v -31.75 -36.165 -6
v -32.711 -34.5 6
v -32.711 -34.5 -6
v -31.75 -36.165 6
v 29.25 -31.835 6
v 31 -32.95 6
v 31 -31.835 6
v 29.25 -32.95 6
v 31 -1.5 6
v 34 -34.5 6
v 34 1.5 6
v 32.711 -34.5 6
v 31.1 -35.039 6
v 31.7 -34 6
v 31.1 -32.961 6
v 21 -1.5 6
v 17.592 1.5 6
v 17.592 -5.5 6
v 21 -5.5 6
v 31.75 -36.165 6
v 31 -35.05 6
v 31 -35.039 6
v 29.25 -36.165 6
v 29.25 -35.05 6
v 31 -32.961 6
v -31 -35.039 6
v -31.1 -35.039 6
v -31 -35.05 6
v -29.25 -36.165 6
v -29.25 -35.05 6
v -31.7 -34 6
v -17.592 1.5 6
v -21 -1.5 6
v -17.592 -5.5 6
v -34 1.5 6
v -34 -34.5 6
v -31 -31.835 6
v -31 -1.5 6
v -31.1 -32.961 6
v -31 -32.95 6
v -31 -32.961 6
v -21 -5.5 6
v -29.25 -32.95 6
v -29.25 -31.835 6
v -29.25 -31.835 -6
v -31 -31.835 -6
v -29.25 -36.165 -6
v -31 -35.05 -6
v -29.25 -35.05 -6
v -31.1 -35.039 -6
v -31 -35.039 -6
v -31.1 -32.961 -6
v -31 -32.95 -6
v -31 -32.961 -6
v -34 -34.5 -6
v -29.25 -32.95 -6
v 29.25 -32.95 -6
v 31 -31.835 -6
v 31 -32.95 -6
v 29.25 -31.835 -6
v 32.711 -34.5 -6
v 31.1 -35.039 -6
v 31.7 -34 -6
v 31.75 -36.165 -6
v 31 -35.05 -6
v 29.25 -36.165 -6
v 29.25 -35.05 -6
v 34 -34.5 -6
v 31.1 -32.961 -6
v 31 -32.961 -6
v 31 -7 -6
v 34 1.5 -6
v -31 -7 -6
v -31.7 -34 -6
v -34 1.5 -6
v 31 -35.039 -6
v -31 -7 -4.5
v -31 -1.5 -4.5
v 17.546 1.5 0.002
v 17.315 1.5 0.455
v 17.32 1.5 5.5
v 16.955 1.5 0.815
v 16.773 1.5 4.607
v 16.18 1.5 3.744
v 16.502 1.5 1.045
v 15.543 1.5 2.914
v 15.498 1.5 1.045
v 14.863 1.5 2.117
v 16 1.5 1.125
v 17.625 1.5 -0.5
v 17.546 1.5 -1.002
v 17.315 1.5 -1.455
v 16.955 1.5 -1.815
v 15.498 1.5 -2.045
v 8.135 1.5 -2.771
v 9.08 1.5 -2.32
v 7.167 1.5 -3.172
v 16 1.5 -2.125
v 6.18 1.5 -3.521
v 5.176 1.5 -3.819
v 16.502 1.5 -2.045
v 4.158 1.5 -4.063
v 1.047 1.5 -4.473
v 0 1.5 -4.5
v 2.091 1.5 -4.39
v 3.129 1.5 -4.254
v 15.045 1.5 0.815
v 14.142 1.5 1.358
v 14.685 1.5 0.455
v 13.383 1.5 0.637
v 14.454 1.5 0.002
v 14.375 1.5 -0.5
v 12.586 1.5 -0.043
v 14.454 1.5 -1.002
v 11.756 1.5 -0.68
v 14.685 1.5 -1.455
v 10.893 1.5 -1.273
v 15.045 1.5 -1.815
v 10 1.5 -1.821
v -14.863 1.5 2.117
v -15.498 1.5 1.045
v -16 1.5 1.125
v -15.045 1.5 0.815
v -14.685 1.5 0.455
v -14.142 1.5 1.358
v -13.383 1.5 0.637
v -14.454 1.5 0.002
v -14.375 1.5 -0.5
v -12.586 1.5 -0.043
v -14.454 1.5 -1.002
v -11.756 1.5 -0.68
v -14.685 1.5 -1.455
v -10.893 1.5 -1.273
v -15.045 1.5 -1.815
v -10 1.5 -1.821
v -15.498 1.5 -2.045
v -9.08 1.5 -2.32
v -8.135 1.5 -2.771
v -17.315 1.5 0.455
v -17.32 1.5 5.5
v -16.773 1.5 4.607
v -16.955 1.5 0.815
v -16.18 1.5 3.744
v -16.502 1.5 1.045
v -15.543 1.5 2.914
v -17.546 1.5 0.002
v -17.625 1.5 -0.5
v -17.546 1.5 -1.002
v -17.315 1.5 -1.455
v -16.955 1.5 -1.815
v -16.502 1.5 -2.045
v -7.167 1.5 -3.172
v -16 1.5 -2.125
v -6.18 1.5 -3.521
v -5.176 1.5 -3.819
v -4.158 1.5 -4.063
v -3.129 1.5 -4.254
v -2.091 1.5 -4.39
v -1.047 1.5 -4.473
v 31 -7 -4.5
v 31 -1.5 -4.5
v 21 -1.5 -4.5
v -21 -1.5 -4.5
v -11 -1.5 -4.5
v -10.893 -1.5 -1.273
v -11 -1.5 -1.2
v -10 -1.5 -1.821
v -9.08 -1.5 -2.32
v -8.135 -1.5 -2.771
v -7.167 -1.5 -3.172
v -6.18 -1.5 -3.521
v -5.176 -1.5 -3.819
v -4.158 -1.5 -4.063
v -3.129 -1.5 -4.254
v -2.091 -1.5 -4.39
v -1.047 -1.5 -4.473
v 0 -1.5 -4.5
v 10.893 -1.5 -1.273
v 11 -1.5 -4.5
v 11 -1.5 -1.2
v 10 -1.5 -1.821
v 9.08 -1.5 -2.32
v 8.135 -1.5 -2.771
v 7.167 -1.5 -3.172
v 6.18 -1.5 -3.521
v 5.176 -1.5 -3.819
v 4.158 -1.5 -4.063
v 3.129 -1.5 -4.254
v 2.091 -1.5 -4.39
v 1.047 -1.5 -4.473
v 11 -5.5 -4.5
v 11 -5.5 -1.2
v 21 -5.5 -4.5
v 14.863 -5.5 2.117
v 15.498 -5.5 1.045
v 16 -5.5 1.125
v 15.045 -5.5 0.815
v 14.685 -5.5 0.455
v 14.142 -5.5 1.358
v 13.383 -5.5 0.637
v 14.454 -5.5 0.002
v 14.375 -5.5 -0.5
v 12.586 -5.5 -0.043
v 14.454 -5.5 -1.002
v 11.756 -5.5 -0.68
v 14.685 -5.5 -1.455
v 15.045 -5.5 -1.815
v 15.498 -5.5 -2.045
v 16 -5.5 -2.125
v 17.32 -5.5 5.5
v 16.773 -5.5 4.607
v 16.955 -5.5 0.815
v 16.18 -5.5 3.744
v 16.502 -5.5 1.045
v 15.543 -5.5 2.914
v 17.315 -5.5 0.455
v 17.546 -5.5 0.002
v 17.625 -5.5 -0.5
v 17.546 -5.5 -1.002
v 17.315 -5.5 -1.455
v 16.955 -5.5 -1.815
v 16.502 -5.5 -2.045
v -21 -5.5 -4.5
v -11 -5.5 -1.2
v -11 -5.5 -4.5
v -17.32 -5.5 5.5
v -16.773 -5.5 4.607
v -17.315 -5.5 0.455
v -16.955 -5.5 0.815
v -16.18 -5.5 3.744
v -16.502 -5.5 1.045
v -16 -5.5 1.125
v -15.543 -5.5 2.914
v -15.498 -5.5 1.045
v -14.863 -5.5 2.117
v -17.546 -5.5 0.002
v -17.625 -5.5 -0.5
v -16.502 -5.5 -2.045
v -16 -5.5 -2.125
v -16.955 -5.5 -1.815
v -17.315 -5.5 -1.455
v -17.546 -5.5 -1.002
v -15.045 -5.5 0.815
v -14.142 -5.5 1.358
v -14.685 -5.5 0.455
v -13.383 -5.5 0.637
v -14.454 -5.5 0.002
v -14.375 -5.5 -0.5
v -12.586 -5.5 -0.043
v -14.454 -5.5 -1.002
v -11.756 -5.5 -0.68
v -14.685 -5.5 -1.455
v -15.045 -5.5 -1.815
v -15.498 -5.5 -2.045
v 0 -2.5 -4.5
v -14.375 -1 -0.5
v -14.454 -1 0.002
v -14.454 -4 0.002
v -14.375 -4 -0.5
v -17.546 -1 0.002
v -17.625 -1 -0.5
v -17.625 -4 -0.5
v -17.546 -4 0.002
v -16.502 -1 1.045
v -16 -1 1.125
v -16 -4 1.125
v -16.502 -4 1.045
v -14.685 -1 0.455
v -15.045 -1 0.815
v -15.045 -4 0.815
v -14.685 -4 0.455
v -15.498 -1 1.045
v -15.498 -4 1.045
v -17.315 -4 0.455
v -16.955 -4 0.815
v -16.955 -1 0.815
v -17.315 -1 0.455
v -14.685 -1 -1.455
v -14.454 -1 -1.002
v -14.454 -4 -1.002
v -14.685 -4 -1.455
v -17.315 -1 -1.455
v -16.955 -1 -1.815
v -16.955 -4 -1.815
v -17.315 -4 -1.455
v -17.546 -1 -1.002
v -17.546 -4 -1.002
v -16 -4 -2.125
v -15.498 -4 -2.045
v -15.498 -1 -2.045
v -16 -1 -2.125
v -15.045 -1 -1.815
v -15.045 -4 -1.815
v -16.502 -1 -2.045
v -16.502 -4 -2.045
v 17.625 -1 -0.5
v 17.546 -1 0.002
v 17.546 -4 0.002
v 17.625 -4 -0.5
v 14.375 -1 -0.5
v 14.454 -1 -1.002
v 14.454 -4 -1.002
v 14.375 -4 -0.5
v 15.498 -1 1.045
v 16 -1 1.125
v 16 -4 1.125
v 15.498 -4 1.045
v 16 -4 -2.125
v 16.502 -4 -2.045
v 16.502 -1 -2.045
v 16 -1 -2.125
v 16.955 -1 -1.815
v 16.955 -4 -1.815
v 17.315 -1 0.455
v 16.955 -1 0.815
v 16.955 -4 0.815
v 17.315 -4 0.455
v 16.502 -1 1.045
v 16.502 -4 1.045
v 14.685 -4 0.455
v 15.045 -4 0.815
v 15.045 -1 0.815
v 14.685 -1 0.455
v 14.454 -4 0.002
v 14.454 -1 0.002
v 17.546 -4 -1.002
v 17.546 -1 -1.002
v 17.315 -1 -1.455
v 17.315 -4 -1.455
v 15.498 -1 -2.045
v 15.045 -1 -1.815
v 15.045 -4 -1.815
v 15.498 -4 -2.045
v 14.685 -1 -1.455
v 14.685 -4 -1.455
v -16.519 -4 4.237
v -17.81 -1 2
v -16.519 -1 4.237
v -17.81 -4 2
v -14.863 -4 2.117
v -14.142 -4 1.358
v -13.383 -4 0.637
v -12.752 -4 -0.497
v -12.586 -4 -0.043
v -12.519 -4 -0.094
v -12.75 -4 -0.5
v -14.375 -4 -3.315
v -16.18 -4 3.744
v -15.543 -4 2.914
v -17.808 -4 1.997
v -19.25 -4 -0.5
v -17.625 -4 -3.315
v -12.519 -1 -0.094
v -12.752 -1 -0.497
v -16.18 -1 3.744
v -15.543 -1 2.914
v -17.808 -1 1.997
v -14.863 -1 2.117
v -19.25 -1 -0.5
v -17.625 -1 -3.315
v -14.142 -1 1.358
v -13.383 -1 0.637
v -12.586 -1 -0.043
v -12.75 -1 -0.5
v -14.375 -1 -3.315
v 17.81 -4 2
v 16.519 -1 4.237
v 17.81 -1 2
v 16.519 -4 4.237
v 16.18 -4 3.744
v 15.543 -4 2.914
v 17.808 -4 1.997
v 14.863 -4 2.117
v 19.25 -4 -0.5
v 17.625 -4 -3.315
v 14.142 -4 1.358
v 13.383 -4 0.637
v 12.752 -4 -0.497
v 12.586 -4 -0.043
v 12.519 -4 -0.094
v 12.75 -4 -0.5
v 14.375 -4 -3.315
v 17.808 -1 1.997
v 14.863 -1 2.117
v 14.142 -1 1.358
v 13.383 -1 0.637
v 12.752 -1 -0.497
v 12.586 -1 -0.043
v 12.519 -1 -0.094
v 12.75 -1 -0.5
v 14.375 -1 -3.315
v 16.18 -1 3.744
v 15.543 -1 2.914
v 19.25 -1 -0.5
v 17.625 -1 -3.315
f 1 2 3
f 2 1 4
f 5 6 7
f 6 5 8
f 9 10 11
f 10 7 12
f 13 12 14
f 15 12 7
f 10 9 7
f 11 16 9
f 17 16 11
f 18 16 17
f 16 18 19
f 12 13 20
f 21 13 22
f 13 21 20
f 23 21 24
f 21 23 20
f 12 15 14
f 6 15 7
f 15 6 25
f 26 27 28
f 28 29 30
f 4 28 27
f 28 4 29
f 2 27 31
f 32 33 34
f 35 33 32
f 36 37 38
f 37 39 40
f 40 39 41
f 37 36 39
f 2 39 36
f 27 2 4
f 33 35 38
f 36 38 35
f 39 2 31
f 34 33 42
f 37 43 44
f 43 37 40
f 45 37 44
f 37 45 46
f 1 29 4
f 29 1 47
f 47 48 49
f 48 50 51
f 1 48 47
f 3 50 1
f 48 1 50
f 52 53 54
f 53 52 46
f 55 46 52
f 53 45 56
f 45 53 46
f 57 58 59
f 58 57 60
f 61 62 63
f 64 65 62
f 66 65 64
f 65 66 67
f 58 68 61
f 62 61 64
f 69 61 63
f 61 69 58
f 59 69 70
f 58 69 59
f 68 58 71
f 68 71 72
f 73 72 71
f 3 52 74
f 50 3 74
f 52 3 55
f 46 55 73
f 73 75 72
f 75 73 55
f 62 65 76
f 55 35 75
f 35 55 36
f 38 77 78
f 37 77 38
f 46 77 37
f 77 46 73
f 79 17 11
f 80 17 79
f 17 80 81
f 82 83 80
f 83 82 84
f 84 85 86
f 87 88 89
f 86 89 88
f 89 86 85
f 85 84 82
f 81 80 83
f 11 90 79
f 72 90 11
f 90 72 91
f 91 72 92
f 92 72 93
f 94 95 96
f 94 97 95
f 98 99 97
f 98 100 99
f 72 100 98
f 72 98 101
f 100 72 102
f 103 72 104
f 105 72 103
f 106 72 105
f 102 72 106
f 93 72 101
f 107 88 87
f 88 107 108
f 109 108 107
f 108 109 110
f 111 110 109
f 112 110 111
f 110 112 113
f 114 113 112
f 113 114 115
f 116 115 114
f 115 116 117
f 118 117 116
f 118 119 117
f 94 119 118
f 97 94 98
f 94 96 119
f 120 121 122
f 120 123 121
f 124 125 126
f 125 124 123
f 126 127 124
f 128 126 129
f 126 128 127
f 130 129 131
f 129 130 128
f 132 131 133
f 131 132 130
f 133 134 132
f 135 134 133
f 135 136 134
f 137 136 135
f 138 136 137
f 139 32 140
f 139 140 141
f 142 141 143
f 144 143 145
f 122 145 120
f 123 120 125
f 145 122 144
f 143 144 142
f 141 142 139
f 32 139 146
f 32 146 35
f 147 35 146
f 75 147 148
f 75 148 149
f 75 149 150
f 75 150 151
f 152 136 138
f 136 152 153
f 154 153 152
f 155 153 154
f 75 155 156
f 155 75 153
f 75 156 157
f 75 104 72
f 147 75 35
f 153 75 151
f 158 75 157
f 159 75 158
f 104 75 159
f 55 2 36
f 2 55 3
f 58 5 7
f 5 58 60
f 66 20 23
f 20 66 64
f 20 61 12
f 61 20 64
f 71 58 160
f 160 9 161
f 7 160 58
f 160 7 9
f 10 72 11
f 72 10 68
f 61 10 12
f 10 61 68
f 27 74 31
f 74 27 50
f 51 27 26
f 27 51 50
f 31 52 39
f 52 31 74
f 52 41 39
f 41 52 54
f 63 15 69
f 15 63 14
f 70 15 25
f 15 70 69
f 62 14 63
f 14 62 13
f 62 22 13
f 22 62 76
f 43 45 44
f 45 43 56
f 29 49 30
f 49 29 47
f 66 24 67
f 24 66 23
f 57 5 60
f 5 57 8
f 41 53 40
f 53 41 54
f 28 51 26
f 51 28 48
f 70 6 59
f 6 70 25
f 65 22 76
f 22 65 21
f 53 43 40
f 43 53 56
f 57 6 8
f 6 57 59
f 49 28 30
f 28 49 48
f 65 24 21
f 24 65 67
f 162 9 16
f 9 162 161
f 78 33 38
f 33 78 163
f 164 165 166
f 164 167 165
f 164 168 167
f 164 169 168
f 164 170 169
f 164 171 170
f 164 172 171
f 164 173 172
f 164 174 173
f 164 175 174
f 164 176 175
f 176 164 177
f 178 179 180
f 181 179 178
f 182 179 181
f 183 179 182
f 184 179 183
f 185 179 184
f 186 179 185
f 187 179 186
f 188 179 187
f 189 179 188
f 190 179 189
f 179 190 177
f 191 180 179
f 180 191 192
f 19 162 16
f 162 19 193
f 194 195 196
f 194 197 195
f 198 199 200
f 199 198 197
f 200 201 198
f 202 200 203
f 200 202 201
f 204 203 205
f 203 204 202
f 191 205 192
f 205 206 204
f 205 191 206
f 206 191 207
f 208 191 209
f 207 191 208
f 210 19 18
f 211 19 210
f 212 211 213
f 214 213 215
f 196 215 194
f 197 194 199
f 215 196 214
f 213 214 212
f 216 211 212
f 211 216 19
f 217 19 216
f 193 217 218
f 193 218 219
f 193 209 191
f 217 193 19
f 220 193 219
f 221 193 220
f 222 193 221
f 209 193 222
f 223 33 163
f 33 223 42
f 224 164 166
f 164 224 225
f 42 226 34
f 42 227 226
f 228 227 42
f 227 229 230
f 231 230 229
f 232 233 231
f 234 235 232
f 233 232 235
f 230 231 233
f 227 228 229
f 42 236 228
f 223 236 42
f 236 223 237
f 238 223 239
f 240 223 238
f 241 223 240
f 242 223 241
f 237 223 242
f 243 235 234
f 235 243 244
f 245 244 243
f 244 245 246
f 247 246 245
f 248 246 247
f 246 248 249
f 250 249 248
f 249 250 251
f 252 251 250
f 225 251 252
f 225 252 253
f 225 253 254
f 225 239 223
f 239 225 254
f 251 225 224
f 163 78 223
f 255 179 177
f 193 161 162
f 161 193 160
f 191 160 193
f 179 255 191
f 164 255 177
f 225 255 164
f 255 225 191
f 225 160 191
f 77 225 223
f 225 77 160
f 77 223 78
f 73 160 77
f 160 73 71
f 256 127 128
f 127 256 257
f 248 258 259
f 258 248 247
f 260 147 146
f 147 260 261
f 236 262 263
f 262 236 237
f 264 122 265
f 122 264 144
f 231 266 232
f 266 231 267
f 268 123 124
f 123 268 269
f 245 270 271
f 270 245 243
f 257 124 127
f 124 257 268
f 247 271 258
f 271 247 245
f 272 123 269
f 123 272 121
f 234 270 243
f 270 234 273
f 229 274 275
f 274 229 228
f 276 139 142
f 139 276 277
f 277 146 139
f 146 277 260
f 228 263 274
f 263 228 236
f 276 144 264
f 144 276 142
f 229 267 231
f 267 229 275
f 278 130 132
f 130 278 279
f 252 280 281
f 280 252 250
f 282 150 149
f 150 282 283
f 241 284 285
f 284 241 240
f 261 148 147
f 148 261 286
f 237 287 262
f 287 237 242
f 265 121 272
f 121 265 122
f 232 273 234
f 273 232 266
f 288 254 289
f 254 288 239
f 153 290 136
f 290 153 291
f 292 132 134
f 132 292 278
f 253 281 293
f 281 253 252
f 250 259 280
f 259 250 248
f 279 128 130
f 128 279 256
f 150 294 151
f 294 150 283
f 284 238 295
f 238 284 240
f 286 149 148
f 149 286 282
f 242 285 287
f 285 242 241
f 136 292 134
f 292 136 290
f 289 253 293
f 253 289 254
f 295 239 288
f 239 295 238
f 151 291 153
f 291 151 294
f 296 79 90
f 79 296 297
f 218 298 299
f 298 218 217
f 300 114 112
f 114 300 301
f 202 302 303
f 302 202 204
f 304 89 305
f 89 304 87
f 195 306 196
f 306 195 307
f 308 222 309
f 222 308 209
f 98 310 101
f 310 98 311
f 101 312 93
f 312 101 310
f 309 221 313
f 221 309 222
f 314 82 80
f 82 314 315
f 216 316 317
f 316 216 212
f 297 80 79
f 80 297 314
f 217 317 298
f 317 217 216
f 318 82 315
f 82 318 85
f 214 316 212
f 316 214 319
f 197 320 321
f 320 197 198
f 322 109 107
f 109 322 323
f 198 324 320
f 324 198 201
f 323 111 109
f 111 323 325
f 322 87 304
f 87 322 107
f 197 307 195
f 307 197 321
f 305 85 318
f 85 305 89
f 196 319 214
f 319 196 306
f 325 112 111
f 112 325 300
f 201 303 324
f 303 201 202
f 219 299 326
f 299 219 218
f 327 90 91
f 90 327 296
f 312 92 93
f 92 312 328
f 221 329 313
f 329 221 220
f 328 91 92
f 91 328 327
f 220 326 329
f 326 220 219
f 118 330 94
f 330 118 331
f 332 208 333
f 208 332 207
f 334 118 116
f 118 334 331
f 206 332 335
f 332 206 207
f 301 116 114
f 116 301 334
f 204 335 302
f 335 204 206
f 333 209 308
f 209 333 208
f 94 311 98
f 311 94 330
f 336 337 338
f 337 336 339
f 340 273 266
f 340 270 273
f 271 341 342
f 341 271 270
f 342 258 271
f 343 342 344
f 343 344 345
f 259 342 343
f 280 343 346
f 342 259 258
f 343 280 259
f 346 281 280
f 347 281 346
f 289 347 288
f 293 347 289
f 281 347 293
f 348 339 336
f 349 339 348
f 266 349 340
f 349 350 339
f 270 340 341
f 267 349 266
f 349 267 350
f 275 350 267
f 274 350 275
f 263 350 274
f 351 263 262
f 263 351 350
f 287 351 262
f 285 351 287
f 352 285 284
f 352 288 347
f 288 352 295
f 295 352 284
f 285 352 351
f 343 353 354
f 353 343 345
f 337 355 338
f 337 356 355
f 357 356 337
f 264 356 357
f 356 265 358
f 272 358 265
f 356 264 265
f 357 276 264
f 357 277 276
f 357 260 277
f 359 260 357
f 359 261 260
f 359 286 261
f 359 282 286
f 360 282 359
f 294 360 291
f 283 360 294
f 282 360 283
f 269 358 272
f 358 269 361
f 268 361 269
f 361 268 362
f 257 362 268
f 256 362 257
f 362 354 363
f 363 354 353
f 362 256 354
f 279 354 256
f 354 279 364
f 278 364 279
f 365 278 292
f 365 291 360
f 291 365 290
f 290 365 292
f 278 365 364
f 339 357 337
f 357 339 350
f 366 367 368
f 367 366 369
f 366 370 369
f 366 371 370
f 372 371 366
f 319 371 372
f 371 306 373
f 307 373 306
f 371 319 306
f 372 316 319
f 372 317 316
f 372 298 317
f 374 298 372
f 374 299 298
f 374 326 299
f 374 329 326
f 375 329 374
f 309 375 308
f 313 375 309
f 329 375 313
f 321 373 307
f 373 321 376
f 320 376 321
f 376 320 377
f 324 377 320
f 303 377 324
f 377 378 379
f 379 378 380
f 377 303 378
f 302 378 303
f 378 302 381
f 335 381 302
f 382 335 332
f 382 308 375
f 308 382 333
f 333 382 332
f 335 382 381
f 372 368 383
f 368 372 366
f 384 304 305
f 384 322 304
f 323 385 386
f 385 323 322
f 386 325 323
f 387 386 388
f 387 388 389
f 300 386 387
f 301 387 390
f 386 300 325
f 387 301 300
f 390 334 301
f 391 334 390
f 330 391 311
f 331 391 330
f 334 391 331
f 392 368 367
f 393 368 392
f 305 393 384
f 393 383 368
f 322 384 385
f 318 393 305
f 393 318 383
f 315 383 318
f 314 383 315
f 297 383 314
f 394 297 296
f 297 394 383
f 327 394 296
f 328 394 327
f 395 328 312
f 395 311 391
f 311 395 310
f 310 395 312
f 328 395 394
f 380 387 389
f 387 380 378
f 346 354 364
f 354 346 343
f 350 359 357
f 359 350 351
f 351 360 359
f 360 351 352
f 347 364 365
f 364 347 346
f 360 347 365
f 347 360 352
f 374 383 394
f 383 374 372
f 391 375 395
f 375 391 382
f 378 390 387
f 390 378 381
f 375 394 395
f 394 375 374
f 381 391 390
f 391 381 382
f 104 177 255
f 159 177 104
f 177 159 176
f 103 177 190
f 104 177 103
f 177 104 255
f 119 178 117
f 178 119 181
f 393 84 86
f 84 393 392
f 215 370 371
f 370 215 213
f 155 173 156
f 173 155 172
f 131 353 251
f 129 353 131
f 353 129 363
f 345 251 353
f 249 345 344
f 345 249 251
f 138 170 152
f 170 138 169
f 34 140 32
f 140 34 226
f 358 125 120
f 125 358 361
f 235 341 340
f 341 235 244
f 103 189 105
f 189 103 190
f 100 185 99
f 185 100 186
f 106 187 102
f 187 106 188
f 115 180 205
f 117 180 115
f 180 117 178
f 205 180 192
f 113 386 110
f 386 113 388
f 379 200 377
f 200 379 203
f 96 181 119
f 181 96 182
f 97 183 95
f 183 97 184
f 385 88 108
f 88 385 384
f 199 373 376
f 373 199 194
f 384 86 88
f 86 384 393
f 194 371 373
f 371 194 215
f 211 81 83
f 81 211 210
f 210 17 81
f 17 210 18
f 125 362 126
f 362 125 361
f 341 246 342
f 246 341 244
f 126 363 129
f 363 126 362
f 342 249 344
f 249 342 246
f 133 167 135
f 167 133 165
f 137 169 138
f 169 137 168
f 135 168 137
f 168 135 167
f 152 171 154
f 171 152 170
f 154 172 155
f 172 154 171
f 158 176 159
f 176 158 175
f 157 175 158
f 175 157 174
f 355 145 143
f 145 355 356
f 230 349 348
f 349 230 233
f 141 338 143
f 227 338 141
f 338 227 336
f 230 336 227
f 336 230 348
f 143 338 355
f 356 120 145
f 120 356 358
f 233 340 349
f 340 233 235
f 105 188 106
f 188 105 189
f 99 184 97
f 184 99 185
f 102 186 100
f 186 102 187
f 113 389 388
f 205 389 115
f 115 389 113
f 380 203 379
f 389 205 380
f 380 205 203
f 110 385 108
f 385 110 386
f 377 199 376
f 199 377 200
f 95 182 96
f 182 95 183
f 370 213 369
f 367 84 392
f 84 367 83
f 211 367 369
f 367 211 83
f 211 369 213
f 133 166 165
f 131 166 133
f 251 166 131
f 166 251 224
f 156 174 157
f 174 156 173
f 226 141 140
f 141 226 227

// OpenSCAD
// MOAB - MOther of All fan Brackets
// Design by Marius Gheorghescu, October 2013.
// Update log
// November 5th 2013: 
//  - fan cutout (and the screw holes) can be removed entirely now to produce spacers or PCB feet 
//  - hex nuts resize with screw size (need to vealidate in practice)
//  - cross-brace is configurable and can also be removed


// Typical values 40, 50, 60, 80. Set to 0 to not have a fan cutout.
fan_size = 40;

// Distance between two fan holes. Typical values: 32.00 for 40mm fan, 40.00 for 50mm fan, 50.00 for 60mm fan, 71.50 for 80mm fan, 105.00 for 120mm fan. Set to value larger than fan size to not have any screw holes
fan_hole_spacing = 32;

// Use 3.25mm for M3, 4.25mm for M4 and so on
screw_diameter = 3.25;

// width of the PCB. Common values: 60mm for RAMPS, 53.5mm for Arduino, 56mm for Raspberry Pi
pcb_width = 62.0;
pcb_thickness = 2.1;

// distance from bottom of the fan to PCB. Recommended value for RAMPS fuse clearance: 35mm
bracket_height = 36;
bracket_leg_height = bracket_height;//51;
bracket_clip_height = 10;
leg_mounting = false;

// how long the bracket needs to be, typically 10mm for mini brackets, or close to fan size for full brackets
bracket_length = 12;

// typically 2-4mm
bracket_thickness = 3.0;

// how tall is the cross brace that addds additional strength to the bracket, set to 0 to not have one
cross_bracket = 7;

/* [Hidden] */

// how much to go over the PCB
lip_size = 1.75;

// effective width of the bracket at the top
bracket_width = max(pcb_width, fan_size - 4);

module legs()
{

    difference() {
        union() {

            // left clip
            translate([-pcb_width/2 + .5, -bracket_height + 2, 0])
                rotate([0, 0, 180]) 
                    cylinder(r=2.5, h=bracket_length, $fn=6, center=true);
            
            // left leg
            translate([-pcb_width/2 - bracket_thickness, -bracket_leg_height + bracket_thickness/2, -bracket_length/2])
                cube([bracket_thickness, bracket_leg_height, bracket_length]);

            if(leg_mounting){
            translate([-pcb_width/2 - bracket_thickness, -bracket_leg_height + bracket_thickness/2, -bracket_length/2])
                rotate([0,0,90])
                    cube([bracket_thickness, bracket_clip_height, bracket_length]);
            }

            // right clip
            translate([pcb_width/2 - .5, -bracket_height + 2, 0])
                 rotate([0, 0, 180]) 
                     cylinder(r=2.5, h=bracket_length, $fn=6, center=true);

            // right leg
            translate([pcb_width/2 , -bracket_leg_height + bracket_thickness/2, -bracket_length/2])
                cube([bracket_thickness, bracket_leg_height, bracket_length]);
              
            if(leg_mounting){
            translate([pcb_width/2+bracket_thickness+bracket_clip_height, -bracket_leg_height + bracket_thickness/2, -bracket_length/2])
                rotate([0,0,90])
                    cube([bracket_thickness, bracket_clip_height, bracket_length]);
            }

        }
        
        // left cutout
       translate([-pcb_width/2 + .5, -bracket_height + 2, 0])
            rotate([0, 0, 180]) 
                cylinder(r=1.2, h=bracket_length + 0.1, $fn=6, center=true);
        
        // cutout leg clip
        translate([-pcb_width/2 - bracket_thickness - bracket_clip_height/2, -bracket_leg_height, 0])
        rotate([90,0,0])    
            cylinder(r=screw_diameter/2, h=bracket_height, $fn=20, center=true);

        // right cutout
       translate([pcb_width/2 - .5, -bracket_height + 2, 0])
            cylinder(r=1.2, h=bracket_length + 0.1, $fn=6, center=true);
        
        // cutout leg clip
        translate([pcb_width/2 + bracket_thickness + bracket_clip_height/2, -bracket_leg_height, 0])
        rotate([90,0,0])    
            cylinder(r=screw_diameter/2, h=bracket_height, $fn=20, center=true); 

        // PCB lips clearance
        translate([0, -bracket_height + bracket_thickness + -.5,0])
            cube([pcb_width - 2*lip_size, 12, bracket_length + 0.1], center=true);

        // PCB
        translate([0, -bracket_height + 2, 0])
            cube([pcb_width, pcb_thickness, bracket_length + 0.1], center=true);

    }
    
}

module fan_mask()
{
    nut_width = 3;
    // M3 screw
    translate([-fan_hole_spacing/2, -fan_hole_spacing/2, 0])
        cylinder(r=screw_diameter/2, h=bracket_height, $fn=20, center=true);
    translate([fan_hole_spacing/2, -fan_hole_spacing/2, 0])
        cylinder(r=screw_diameter/2, h=bracket_height, $fn=20, center=true);
    translate([-fan_hole_spacing/2, fan_hole_spacing/2, 0])
        cylinder(r=screw_diameter/2, h=bracket_height, $fn=20, center=true);
    translate([fan_hole_spacing/2, fan_hole_spacing/2, 0])
        cylinder(r=screw_diameter/2, h=bracket_height, $fn=20, center=true);

    // nut traps
    translate([(-fan_hole_spacing/2)+1.44, (-fan_hole_spacing/2)+2.5, 0])
        cylinder(r=screw_diameter, h=nut_width, $fn=6, center=true);
    translate([(fan_hole_spacing/2)-1.44, (-fan_hole_spacing/2)+2.5, 0])
        cylinder(r=screw_diameter, h=nut_width, $fn=6, center=true);
    translate([(-fan_hole_spacing/2)+1.44, (fan_hole_spacing/2)-2.5, 0])
        cylinder(r=screw_diameter, h=nut_width, $fn=6, center=true);
    translate([(fan_hole_spacing/2)-1.44, (fan_hole_spacing/2)-2.5, 0])
        cylinder(r=screw_diameter, h=nut_width, $fn=6, center=true);
    
    // M3 nuts
    translate([-fan_hole_spacing/2, -fan_hole_spacing/2, 0])
        cylinder(r=screw_diameter, h=nut_width, $fn=6, center=true);
    translate([fan_hole_spacing/2, -fan_hole_spacing/2, 0])
        cylinder(r=screw_diameter, h=nut_width, $fn=6, center=true);
    translate([-fan_hole_spacing/2, fan_hole_spacing/2, 0])
        cylinder(r=screw_diameter, h=nut_width, $fn=6, center=true);
    translate([fan_hole_spacing/2, fan_hole_spacing/2, 0])
        cylinder(r=screw_diameter, h=nut_width, $fn=6, center=true);

    // fan blade clearance
    difference() {
        cylinder(r=fan_size/2, h=bracket_height, $fn=120, center=true);

        // $TODO - add support around the screws if they are too close to the blades
        // also need to add support if the bracket is not wide (tall) enough 
    }
}


module bracket()
{
    difference() {
        union() {

            // fan base
            translate([0, 0, 0])
                cube([bracket_width + 2*bracket_thickness, bracket_thickness, bracket_length], center=true);

            // captive nuts
            translate([16, -3, 0])
                cube([10, bracket_thickness+2, 12], center=true);
            translate([-16, -3, 0])
                cube([10, bracket_thickness+2, 12], center=true);
            
            // extra strength 
            translate([0, -cross_bracket/2, -bracket_length/2 + bracket_thickness/4])
                cube([pcb_width + 1, cross_bracket, bracket_thickness/2], center=true);

            legs();
        }


        translate([0, -bracket_thickness+0.5, -bracket_length/2 + fan_size/2 + bracket_thickness/2])
        rotate([90,0,0])
            fan_mask();

        }
}


module assembly() 
{
    color([1,0,0])
    translate([0, 0, -fan_size/2])
        bracket();

    color([1,0,0])
    //translate([0, 0, fan_size/2])
    rotate([0,180,0])
        bracket();

    color([0,.5,0])
    translate([0, -bracket_height + 2, 0])
        cube([pcb_width - 1, 1.75, fan_size*1.5], center=true);

}

//assembly();
bracket();
//fan_mask();
